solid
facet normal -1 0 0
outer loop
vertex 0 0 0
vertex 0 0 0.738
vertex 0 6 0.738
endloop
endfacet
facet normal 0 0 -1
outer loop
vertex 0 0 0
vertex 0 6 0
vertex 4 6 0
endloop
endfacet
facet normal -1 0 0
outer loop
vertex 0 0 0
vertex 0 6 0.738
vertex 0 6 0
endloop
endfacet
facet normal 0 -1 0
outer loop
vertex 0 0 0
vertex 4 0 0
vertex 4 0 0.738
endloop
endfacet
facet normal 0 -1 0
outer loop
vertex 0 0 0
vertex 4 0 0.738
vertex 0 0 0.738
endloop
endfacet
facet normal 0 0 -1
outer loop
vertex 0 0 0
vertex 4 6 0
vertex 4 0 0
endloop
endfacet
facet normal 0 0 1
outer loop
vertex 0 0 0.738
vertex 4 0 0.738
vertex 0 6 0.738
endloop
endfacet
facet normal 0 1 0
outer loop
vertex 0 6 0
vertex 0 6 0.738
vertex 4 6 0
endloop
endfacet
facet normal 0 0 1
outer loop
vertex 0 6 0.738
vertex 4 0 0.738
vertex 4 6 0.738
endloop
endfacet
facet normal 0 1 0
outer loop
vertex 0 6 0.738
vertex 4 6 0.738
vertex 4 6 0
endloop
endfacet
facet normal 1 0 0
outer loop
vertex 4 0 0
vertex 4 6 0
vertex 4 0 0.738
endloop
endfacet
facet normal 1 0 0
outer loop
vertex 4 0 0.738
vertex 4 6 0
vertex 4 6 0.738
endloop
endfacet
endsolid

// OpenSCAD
/* Warning, this is a very basic generator with a lot of approximation 
input data : [WFBGA, 4UX, 4x6x0.738mm, 48, , B, C04-00165B]
generated by com.zoubworld.electronics.cad.model3d.Basic
Date : Sun Feb 15 10:50:48 CET 2026
*/

//body
color("black")
translate([0,0,0])
cube([4.0,6.0,0.738], center=false);
